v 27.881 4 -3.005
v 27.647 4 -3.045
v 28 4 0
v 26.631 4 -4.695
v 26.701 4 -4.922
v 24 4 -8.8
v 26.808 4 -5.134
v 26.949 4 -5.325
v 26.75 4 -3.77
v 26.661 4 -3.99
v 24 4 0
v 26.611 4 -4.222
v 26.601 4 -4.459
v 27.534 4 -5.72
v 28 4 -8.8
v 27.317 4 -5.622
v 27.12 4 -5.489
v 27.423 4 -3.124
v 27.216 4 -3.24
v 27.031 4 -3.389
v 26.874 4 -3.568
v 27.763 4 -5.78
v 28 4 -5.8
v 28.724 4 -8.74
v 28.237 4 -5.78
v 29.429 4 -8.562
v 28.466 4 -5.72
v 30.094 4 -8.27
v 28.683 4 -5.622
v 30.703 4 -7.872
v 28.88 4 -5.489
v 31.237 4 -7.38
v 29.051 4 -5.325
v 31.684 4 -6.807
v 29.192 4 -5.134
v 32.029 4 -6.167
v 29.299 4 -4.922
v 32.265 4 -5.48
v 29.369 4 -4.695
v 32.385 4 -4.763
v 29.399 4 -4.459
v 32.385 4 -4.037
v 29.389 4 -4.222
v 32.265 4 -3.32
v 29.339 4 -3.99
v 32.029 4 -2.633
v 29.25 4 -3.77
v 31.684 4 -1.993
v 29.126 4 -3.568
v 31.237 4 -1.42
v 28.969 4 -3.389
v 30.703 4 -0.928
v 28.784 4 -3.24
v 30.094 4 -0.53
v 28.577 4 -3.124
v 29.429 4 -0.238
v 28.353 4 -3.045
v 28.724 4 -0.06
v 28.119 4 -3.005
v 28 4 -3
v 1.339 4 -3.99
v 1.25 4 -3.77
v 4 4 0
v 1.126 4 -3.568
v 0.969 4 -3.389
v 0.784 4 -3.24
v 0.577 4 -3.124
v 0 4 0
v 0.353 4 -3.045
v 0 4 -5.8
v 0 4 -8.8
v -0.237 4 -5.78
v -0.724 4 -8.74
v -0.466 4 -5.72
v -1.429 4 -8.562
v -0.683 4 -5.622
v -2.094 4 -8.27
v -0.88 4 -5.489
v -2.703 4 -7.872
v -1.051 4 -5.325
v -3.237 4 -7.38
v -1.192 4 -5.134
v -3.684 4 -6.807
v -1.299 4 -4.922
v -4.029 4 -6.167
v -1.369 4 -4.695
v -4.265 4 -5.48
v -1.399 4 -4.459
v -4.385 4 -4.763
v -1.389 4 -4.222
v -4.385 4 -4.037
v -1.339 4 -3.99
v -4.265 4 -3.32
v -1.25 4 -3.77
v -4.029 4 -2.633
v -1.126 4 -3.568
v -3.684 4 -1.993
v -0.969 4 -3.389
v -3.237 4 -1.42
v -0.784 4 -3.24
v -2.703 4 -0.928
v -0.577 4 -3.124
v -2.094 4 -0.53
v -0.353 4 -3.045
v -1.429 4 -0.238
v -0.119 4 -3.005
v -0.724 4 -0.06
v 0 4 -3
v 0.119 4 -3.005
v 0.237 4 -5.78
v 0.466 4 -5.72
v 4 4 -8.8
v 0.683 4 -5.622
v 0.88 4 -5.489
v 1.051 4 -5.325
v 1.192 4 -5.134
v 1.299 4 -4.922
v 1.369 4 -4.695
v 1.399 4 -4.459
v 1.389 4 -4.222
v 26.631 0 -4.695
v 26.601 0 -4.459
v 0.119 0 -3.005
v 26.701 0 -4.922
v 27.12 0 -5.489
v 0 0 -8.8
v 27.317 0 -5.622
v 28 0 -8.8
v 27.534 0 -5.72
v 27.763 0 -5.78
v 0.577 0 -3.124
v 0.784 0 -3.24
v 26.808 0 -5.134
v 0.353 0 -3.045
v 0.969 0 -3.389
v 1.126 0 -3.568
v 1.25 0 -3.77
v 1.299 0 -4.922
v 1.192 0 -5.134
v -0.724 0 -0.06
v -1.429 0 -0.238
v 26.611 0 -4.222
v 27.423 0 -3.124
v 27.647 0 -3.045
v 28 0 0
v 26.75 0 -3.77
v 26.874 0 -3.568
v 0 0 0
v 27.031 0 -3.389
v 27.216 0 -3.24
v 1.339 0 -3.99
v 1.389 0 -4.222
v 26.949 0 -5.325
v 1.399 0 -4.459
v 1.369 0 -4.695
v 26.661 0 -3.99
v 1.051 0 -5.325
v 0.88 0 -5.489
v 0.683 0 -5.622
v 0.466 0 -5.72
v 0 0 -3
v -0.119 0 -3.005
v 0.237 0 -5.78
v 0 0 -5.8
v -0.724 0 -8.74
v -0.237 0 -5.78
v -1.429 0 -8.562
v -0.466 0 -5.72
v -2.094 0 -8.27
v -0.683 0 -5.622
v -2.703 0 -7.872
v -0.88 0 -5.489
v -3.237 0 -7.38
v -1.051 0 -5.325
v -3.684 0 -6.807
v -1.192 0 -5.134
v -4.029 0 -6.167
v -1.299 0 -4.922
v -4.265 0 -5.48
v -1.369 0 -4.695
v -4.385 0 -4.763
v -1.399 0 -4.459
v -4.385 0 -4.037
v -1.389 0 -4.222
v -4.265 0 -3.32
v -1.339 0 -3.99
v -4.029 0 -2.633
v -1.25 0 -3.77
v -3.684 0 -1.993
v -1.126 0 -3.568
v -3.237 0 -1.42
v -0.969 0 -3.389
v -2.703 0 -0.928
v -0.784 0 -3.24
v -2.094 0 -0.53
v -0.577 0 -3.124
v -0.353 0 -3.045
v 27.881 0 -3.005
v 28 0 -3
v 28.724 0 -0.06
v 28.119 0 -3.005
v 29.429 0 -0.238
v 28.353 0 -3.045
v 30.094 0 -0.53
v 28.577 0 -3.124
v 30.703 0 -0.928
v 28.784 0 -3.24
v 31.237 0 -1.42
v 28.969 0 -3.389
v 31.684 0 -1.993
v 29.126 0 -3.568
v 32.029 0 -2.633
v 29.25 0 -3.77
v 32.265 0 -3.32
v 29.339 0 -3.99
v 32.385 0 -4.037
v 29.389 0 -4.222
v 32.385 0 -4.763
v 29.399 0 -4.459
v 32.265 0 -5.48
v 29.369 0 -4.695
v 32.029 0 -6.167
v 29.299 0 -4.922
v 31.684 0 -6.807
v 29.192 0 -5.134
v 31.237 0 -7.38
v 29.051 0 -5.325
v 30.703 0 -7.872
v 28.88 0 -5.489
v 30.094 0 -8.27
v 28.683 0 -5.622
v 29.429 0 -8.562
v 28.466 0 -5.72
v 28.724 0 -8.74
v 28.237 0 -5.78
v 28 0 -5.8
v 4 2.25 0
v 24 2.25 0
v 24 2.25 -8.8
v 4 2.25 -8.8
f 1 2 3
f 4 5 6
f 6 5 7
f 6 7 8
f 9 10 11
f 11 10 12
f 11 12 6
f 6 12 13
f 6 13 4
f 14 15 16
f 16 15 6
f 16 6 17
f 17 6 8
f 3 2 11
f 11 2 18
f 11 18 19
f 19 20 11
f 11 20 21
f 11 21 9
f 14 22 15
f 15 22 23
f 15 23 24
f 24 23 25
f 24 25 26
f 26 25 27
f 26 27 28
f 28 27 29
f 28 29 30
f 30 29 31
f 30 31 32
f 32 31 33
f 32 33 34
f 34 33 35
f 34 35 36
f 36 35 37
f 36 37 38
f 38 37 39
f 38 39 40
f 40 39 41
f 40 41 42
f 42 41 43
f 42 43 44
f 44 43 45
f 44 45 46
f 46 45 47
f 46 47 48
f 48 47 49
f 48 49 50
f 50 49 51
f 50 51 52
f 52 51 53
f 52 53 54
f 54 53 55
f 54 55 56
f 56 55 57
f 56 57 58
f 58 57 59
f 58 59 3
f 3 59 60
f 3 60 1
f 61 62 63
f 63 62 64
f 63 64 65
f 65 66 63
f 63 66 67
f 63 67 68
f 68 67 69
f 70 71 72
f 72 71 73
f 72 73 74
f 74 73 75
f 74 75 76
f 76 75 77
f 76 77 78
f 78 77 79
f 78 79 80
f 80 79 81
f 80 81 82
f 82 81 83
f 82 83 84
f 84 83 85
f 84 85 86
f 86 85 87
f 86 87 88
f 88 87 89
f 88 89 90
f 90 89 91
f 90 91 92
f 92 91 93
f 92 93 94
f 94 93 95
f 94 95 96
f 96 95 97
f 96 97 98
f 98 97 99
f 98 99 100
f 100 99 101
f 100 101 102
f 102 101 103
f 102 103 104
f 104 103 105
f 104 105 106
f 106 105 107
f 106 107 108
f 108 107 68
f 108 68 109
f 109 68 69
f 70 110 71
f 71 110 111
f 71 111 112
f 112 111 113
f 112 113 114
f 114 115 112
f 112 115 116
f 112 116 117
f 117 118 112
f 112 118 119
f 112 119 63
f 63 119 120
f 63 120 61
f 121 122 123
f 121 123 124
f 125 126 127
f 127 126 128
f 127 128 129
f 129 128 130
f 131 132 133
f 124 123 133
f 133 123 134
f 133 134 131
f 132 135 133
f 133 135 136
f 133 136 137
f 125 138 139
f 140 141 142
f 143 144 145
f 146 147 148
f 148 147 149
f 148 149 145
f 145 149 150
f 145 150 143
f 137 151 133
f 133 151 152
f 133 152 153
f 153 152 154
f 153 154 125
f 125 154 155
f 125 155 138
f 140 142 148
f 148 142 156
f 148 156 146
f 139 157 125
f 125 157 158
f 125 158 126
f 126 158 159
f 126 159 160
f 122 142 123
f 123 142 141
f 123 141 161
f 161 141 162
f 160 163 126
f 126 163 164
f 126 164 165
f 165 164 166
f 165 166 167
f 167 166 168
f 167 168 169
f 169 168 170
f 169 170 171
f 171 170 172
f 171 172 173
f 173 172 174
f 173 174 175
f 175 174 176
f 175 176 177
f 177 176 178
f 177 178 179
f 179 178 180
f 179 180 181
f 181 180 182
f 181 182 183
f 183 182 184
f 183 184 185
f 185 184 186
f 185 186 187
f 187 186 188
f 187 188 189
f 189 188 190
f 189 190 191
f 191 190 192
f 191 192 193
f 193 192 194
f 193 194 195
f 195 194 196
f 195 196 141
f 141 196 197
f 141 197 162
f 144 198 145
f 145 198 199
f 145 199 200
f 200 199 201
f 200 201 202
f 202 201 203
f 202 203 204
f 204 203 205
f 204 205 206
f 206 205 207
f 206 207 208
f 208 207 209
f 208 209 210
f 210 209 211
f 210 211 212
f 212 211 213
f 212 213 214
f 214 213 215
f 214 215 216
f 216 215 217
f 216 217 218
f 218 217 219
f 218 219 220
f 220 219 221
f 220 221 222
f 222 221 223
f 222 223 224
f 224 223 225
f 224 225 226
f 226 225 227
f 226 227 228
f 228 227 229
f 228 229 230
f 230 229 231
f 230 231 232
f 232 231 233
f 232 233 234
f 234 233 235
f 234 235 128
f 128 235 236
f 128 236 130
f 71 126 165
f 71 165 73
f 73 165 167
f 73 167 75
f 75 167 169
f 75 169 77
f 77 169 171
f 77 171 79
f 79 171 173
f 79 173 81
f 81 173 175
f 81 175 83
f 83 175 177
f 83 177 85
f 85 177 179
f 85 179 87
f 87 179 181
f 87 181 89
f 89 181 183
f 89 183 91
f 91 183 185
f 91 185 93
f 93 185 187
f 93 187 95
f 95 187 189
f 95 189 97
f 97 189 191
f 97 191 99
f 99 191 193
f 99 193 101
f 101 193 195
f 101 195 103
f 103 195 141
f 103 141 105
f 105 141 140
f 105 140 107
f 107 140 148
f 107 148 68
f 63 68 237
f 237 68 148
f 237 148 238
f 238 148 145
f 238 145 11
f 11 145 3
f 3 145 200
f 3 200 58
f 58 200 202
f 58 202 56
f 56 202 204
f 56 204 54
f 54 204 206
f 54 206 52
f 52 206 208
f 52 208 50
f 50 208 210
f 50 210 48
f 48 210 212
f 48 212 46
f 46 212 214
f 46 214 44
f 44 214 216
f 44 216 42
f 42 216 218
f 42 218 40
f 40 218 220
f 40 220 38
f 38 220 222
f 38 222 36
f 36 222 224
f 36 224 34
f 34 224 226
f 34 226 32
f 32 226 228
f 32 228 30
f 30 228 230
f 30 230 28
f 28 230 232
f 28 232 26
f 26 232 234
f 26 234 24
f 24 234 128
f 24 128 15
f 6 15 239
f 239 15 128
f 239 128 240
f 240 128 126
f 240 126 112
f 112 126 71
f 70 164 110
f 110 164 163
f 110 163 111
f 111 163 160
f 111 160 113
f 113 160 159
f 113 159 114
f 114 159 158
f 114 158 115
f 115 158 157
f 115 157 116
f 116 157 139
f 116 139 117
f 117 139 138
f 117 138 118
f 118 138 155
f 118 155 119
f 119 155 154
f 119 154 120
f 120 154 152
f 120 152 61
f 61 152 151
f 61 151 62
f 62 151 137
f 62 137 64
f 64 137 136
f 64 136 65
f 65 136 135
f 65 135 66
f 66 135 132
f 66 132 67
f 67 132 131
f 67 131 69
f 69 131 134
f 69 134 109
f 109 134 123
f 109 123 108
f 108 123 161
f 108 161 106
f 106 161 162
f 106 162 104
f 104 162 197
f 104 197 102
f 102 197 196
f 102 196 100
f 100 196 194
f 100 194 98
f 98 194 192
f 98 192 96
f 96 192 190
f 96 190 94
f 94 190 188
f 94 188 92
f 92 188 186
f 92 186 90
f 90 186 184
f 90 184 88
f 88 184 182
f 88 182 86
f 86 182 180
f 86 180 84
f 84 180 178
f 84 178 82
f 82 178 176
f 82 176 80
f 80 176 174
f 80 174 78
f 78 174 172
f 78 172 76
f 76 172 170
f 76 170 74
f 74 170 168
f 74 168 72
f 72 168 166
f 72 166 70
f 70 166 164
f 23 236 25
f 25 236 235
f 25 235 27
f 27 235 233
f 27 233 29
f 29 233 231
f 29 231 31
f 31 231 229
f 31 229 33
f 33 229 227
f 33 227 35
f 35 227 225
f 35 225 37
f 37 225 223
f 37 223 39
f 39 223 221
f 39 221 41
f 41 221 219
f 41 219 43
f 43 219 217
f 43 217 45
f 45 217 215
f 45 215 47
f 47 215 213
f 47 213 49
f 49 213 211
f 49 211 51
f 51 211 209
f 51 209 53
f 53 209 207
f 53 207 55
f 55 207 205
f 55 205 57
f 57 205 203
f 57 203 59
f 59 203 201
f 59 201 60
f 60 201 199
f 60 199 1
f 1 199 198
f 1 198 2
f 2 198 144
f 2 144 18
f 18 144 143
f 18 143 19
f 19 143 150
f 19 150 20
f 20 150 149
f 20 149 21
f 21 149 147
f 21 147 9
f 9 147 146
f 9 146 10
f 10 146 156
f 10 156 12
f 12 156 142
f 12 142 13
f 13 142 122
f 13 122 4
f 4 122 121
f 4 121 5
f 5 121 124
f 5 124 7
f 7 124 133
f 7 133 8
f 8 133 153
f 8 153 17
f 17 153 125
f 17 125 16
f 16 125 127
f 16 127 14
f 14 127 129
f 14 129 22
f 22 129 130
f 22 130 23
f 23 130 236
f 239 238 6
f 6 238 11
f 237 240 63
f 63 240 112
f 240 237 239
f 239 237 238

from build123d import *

# Parameters (mm, degrees)
SKETCH1_R           = 1.4
BOSS_EXTRUDE1_DEPTH = 4
SKETCH2_W           = 20
SKETCH2_H           = 8.8
CUT_EXTRUDE1_DEPTH  = 1.75


with BuildPart() as part:
    # Sketch1 → Boss-Extrude1 (new body)
    with BuildSketch(Plane(origin=(0, 0, 0), x_dir=(1, 0, 0), z_dir=(0, 1, 0))):
        with BuildLine():
            Line((0, 0), (28, 0))
            ThreePointArc((28, 0), (32.4, 4.4), (28, 8.8))
            Line((28, 8.8), (0, 8.8))
            ThreePointArc((0, 8.8), (-4.4, 4.4), (0, 0))
        make_face()
        with Locations((0, 4.4)):
            Circle(SKETCH1_R, mode=Mode.SUBTRACT)
        with Locations((28, 4.4)):
            Circle(SKETCH1_R, mode=Mode.SUBTRACT)
    extrude(amount=BOSS_EXTRUDE1_DEPTH)

    # Sketch2 → Cut-Extrude1 (cut)
    with BuildSketch(Plane(origin=(0, 4, 0), x_dir=(1, 0, 0), z_dir=(0, 1, 0))):
        with Locations((14, 4.4)):
            Rectangle(SKETCH2_W, SKETCH2_H)
    extrude(amount=-CUT_EXTRUDE1_DEPTH, mode=Mode.SUBTRACT)


solid = part.part
